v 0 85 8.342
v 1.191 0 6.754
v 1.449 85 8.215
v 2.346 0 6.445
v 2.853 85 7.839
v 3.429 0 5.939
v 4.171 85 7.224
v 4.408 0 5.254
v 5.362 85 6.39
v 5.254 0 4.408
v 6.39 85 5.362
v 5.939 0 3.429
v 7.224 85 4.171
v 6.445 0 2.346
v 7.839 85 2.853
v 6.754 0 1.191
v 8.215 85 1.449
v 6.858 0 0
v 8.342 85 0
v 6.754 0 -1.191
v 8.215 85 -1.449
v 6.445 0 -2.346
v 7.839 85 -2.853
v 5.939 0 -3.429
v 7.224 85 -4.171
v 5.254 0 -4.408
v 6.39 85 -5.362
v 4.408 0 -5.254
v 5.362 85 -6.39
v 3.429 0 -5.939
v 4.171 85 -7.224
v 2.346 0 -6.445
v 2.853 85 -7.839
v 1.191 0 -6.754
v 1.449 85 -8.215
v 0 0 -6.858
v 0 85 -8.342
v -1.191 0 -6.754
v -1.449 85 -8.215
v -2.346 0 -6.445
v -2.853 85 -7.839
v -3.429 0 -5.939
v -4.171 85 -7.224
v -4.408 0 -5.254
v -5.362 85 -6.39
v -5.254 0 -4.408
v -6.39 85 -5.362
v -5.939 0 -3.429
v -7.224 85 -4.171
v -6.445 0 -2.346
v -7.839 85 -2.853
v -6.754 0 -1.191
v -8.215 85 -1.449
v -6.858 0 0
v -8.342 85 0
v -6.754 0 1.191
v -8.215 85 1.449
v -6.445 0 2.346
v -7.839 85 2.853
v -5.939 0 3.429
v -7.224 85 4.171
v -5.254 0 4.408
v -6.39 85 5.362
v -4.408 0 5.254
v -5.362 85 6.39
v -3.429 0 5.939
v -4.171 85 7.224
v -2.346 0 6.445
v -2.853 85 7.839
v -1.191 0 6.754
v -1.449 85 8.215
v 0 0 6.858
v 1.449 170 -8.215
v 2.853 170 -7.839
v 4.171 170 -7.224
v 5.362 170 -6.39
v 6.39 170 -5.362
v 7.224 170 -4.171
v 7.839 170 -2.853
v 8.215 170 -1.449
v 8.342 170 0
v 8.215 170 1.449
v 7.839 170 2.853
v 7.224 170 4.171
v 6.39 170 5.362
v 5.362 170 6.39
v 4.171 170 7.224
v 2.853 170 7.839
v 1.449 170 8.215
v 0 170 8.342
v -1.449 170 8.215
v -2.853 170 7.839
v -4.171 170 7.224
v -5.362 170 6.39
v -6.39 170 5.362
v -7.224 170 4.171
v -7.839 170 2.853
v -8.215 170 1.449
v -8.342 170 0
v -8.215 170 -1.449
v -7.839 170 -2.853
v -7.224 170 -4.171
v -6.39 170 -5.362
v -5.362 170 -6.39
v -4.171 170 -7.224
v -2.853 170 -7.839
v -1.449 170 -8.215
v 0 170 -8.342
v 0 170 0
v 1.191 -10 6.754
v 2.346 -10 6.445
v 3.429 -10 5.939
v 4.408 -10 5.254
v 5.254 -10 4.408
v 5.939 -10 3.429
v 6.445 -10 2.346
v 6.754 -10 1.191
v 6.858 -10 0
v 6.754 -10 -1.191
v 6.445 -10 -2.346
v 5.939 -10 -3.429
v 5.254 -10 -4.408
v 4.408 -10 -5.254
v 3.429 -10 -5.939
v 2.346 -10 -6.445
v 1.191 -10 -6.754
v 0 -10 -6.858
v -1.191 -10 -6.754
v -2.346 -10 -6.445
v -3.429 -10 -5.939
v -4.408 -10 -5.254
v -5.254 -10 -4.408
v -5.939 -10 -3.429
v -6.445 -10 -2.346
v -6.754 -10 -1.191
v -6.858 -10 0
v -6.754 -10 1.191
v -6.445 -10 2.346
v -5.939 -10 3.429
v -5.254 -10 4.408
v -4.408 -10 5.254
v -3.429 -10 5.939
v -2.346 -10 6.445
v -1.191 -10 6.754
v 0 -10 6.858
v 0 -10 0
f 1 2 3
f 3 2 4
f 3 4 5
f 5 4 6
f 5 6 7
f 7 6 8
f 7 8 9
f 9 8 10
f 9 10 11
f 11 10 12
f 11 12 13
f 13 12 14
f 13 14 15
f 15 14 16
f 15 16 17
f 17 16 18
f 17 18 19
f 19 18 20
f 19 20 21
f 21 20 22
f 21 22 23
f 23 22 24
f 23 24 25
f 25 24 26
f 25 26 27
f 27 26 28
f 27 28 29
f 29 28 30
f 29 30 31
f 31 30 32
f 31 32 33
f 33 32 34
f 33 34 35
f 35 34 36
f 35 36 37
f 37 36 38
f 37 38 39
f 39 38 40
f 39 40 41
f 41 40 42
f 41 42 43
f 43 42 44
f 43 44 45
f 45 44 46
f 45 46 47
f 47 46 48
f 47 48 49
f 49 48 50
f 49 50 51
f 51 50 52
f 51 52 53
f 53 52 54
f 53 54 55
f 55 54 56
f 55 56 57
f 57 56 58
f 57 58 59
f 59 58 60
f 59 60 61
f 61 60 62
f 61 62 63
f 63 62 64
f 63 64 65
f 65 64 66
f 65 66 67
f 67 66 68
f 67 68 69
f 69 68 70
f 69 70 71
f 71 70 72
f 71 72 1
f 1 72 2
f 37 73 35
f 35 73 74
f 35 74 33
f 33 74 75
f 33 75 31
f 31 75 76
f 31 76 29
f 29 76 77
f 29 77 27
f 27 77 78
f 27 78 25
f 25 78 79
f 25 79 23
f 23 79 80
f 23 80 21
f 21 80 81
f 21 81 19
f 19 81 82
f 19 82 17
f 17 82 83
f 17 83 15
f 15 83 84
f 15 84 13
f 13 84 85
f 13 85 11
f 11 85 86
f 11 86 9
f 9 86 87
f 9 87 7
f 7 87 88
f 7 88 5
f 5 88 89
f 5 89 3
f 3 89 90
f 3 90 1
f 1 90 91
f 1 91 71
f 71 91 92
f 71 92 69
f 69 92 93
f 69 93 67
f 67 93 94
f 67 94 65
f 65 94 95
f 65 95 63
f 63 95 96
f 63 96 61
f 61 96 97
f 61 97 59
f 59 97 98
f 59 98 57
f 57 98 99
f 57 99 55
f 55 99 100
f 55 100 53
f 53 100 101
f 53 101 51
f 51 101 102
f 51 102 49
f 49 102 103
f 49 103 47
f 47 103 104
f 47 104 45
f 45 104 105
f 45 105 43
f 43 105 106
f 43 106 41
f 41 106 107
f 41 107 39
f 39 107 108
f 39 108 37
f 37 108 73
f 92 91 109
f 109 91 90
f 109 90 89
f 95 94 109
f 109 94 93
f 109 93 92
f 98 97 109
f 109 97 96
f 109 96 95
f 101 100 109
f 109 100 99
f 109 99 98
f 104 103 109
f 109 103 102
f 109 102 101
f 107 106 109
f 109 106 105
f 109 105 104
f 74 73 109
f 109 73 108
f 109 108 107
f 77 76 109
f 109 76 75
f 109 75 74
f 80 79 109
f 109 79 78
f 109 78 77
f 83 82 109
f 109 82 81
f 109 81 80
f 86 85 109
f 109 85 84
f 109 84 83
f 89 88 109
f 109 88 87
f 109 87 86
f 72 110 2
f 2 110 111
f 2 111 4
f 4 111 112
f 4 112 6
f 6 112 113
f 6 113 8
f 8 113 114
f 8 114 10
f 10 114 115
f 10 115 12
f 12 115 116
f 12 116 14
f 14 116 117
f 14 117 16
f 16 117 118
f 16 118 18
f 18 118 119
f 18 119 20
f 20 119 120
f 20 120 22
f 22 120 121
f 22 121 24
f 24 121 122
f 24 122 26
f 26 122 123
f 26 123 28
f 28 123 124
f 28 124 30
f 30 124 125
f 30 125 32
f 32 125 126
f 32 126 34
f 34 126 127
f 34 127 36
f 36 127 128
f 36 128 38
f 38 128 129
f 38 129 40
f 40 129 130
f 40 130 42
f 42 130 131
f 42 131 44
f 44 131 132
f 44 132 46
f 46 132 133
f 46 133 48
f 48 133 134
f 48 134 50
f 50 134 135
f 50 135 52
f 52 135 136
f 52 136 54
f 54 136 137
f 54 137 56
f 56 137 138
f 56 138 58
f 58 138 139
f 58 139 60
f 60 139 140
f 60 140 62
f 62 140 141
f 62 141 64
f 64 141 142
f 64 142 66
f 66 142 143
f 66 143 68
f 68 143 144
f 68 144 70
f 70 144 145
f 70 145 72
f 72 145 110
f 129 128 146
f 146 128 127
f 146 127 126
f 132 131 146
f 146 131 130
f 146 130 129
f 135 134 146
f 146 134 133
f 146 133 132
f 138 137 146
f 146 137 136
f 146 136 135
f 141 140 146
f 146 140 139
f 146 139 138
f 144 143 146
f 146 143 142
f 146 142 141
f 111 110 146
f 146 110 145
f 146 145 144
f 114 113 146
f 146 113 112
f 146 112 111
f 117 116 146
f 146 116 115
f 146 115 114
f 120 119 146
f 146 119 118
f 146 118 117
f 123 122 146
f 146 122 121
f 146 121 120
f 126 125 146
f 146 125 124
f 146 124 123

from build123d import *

# Parameters (mm, degrees)
CROQUIS2_R              = 8.341840259
SALIENTE_EXTRUIR1_DEPTH = 85
CROQUIS3_R              = 6.858159741
SALIENTE_EXTRUIR2_DEPTH = 10


with BuildPart() as part:
    # Croquis1 → Revolución1 (revolve)
    with BuildSketch(Plane(origin=(0, 0, 0), x_dir=(0, 0, -1), z_dir=(1, 0, 0))):
        Polygon((0, 0), (6.858159741, 0), (8.341840259, 85), (0, 85), align=None)
    revolve(axis=Axis((0, 0, 0), (0, 1, 0)))

    # Croquis2 → Saliente-Extruir1 (add)
    with BuildSketch(Plane(origin=(0, 85, 0), x_dir=(1, 0, 0), z_dir=(0, 1, 0))):
        Circle(CROQUIS2_R)
    extrude(amount=SALIENTE_EXTRUIR1_DEPTH)

    # Croquis3 → Saliente-Extruir2 (add)
    with BuildSketch(Plane.XZ):
        Circle(CROQUIS3_R)
    extrude(amount=SALIENTE_EXTRUIR2_DEPTH)


solid = part.part
